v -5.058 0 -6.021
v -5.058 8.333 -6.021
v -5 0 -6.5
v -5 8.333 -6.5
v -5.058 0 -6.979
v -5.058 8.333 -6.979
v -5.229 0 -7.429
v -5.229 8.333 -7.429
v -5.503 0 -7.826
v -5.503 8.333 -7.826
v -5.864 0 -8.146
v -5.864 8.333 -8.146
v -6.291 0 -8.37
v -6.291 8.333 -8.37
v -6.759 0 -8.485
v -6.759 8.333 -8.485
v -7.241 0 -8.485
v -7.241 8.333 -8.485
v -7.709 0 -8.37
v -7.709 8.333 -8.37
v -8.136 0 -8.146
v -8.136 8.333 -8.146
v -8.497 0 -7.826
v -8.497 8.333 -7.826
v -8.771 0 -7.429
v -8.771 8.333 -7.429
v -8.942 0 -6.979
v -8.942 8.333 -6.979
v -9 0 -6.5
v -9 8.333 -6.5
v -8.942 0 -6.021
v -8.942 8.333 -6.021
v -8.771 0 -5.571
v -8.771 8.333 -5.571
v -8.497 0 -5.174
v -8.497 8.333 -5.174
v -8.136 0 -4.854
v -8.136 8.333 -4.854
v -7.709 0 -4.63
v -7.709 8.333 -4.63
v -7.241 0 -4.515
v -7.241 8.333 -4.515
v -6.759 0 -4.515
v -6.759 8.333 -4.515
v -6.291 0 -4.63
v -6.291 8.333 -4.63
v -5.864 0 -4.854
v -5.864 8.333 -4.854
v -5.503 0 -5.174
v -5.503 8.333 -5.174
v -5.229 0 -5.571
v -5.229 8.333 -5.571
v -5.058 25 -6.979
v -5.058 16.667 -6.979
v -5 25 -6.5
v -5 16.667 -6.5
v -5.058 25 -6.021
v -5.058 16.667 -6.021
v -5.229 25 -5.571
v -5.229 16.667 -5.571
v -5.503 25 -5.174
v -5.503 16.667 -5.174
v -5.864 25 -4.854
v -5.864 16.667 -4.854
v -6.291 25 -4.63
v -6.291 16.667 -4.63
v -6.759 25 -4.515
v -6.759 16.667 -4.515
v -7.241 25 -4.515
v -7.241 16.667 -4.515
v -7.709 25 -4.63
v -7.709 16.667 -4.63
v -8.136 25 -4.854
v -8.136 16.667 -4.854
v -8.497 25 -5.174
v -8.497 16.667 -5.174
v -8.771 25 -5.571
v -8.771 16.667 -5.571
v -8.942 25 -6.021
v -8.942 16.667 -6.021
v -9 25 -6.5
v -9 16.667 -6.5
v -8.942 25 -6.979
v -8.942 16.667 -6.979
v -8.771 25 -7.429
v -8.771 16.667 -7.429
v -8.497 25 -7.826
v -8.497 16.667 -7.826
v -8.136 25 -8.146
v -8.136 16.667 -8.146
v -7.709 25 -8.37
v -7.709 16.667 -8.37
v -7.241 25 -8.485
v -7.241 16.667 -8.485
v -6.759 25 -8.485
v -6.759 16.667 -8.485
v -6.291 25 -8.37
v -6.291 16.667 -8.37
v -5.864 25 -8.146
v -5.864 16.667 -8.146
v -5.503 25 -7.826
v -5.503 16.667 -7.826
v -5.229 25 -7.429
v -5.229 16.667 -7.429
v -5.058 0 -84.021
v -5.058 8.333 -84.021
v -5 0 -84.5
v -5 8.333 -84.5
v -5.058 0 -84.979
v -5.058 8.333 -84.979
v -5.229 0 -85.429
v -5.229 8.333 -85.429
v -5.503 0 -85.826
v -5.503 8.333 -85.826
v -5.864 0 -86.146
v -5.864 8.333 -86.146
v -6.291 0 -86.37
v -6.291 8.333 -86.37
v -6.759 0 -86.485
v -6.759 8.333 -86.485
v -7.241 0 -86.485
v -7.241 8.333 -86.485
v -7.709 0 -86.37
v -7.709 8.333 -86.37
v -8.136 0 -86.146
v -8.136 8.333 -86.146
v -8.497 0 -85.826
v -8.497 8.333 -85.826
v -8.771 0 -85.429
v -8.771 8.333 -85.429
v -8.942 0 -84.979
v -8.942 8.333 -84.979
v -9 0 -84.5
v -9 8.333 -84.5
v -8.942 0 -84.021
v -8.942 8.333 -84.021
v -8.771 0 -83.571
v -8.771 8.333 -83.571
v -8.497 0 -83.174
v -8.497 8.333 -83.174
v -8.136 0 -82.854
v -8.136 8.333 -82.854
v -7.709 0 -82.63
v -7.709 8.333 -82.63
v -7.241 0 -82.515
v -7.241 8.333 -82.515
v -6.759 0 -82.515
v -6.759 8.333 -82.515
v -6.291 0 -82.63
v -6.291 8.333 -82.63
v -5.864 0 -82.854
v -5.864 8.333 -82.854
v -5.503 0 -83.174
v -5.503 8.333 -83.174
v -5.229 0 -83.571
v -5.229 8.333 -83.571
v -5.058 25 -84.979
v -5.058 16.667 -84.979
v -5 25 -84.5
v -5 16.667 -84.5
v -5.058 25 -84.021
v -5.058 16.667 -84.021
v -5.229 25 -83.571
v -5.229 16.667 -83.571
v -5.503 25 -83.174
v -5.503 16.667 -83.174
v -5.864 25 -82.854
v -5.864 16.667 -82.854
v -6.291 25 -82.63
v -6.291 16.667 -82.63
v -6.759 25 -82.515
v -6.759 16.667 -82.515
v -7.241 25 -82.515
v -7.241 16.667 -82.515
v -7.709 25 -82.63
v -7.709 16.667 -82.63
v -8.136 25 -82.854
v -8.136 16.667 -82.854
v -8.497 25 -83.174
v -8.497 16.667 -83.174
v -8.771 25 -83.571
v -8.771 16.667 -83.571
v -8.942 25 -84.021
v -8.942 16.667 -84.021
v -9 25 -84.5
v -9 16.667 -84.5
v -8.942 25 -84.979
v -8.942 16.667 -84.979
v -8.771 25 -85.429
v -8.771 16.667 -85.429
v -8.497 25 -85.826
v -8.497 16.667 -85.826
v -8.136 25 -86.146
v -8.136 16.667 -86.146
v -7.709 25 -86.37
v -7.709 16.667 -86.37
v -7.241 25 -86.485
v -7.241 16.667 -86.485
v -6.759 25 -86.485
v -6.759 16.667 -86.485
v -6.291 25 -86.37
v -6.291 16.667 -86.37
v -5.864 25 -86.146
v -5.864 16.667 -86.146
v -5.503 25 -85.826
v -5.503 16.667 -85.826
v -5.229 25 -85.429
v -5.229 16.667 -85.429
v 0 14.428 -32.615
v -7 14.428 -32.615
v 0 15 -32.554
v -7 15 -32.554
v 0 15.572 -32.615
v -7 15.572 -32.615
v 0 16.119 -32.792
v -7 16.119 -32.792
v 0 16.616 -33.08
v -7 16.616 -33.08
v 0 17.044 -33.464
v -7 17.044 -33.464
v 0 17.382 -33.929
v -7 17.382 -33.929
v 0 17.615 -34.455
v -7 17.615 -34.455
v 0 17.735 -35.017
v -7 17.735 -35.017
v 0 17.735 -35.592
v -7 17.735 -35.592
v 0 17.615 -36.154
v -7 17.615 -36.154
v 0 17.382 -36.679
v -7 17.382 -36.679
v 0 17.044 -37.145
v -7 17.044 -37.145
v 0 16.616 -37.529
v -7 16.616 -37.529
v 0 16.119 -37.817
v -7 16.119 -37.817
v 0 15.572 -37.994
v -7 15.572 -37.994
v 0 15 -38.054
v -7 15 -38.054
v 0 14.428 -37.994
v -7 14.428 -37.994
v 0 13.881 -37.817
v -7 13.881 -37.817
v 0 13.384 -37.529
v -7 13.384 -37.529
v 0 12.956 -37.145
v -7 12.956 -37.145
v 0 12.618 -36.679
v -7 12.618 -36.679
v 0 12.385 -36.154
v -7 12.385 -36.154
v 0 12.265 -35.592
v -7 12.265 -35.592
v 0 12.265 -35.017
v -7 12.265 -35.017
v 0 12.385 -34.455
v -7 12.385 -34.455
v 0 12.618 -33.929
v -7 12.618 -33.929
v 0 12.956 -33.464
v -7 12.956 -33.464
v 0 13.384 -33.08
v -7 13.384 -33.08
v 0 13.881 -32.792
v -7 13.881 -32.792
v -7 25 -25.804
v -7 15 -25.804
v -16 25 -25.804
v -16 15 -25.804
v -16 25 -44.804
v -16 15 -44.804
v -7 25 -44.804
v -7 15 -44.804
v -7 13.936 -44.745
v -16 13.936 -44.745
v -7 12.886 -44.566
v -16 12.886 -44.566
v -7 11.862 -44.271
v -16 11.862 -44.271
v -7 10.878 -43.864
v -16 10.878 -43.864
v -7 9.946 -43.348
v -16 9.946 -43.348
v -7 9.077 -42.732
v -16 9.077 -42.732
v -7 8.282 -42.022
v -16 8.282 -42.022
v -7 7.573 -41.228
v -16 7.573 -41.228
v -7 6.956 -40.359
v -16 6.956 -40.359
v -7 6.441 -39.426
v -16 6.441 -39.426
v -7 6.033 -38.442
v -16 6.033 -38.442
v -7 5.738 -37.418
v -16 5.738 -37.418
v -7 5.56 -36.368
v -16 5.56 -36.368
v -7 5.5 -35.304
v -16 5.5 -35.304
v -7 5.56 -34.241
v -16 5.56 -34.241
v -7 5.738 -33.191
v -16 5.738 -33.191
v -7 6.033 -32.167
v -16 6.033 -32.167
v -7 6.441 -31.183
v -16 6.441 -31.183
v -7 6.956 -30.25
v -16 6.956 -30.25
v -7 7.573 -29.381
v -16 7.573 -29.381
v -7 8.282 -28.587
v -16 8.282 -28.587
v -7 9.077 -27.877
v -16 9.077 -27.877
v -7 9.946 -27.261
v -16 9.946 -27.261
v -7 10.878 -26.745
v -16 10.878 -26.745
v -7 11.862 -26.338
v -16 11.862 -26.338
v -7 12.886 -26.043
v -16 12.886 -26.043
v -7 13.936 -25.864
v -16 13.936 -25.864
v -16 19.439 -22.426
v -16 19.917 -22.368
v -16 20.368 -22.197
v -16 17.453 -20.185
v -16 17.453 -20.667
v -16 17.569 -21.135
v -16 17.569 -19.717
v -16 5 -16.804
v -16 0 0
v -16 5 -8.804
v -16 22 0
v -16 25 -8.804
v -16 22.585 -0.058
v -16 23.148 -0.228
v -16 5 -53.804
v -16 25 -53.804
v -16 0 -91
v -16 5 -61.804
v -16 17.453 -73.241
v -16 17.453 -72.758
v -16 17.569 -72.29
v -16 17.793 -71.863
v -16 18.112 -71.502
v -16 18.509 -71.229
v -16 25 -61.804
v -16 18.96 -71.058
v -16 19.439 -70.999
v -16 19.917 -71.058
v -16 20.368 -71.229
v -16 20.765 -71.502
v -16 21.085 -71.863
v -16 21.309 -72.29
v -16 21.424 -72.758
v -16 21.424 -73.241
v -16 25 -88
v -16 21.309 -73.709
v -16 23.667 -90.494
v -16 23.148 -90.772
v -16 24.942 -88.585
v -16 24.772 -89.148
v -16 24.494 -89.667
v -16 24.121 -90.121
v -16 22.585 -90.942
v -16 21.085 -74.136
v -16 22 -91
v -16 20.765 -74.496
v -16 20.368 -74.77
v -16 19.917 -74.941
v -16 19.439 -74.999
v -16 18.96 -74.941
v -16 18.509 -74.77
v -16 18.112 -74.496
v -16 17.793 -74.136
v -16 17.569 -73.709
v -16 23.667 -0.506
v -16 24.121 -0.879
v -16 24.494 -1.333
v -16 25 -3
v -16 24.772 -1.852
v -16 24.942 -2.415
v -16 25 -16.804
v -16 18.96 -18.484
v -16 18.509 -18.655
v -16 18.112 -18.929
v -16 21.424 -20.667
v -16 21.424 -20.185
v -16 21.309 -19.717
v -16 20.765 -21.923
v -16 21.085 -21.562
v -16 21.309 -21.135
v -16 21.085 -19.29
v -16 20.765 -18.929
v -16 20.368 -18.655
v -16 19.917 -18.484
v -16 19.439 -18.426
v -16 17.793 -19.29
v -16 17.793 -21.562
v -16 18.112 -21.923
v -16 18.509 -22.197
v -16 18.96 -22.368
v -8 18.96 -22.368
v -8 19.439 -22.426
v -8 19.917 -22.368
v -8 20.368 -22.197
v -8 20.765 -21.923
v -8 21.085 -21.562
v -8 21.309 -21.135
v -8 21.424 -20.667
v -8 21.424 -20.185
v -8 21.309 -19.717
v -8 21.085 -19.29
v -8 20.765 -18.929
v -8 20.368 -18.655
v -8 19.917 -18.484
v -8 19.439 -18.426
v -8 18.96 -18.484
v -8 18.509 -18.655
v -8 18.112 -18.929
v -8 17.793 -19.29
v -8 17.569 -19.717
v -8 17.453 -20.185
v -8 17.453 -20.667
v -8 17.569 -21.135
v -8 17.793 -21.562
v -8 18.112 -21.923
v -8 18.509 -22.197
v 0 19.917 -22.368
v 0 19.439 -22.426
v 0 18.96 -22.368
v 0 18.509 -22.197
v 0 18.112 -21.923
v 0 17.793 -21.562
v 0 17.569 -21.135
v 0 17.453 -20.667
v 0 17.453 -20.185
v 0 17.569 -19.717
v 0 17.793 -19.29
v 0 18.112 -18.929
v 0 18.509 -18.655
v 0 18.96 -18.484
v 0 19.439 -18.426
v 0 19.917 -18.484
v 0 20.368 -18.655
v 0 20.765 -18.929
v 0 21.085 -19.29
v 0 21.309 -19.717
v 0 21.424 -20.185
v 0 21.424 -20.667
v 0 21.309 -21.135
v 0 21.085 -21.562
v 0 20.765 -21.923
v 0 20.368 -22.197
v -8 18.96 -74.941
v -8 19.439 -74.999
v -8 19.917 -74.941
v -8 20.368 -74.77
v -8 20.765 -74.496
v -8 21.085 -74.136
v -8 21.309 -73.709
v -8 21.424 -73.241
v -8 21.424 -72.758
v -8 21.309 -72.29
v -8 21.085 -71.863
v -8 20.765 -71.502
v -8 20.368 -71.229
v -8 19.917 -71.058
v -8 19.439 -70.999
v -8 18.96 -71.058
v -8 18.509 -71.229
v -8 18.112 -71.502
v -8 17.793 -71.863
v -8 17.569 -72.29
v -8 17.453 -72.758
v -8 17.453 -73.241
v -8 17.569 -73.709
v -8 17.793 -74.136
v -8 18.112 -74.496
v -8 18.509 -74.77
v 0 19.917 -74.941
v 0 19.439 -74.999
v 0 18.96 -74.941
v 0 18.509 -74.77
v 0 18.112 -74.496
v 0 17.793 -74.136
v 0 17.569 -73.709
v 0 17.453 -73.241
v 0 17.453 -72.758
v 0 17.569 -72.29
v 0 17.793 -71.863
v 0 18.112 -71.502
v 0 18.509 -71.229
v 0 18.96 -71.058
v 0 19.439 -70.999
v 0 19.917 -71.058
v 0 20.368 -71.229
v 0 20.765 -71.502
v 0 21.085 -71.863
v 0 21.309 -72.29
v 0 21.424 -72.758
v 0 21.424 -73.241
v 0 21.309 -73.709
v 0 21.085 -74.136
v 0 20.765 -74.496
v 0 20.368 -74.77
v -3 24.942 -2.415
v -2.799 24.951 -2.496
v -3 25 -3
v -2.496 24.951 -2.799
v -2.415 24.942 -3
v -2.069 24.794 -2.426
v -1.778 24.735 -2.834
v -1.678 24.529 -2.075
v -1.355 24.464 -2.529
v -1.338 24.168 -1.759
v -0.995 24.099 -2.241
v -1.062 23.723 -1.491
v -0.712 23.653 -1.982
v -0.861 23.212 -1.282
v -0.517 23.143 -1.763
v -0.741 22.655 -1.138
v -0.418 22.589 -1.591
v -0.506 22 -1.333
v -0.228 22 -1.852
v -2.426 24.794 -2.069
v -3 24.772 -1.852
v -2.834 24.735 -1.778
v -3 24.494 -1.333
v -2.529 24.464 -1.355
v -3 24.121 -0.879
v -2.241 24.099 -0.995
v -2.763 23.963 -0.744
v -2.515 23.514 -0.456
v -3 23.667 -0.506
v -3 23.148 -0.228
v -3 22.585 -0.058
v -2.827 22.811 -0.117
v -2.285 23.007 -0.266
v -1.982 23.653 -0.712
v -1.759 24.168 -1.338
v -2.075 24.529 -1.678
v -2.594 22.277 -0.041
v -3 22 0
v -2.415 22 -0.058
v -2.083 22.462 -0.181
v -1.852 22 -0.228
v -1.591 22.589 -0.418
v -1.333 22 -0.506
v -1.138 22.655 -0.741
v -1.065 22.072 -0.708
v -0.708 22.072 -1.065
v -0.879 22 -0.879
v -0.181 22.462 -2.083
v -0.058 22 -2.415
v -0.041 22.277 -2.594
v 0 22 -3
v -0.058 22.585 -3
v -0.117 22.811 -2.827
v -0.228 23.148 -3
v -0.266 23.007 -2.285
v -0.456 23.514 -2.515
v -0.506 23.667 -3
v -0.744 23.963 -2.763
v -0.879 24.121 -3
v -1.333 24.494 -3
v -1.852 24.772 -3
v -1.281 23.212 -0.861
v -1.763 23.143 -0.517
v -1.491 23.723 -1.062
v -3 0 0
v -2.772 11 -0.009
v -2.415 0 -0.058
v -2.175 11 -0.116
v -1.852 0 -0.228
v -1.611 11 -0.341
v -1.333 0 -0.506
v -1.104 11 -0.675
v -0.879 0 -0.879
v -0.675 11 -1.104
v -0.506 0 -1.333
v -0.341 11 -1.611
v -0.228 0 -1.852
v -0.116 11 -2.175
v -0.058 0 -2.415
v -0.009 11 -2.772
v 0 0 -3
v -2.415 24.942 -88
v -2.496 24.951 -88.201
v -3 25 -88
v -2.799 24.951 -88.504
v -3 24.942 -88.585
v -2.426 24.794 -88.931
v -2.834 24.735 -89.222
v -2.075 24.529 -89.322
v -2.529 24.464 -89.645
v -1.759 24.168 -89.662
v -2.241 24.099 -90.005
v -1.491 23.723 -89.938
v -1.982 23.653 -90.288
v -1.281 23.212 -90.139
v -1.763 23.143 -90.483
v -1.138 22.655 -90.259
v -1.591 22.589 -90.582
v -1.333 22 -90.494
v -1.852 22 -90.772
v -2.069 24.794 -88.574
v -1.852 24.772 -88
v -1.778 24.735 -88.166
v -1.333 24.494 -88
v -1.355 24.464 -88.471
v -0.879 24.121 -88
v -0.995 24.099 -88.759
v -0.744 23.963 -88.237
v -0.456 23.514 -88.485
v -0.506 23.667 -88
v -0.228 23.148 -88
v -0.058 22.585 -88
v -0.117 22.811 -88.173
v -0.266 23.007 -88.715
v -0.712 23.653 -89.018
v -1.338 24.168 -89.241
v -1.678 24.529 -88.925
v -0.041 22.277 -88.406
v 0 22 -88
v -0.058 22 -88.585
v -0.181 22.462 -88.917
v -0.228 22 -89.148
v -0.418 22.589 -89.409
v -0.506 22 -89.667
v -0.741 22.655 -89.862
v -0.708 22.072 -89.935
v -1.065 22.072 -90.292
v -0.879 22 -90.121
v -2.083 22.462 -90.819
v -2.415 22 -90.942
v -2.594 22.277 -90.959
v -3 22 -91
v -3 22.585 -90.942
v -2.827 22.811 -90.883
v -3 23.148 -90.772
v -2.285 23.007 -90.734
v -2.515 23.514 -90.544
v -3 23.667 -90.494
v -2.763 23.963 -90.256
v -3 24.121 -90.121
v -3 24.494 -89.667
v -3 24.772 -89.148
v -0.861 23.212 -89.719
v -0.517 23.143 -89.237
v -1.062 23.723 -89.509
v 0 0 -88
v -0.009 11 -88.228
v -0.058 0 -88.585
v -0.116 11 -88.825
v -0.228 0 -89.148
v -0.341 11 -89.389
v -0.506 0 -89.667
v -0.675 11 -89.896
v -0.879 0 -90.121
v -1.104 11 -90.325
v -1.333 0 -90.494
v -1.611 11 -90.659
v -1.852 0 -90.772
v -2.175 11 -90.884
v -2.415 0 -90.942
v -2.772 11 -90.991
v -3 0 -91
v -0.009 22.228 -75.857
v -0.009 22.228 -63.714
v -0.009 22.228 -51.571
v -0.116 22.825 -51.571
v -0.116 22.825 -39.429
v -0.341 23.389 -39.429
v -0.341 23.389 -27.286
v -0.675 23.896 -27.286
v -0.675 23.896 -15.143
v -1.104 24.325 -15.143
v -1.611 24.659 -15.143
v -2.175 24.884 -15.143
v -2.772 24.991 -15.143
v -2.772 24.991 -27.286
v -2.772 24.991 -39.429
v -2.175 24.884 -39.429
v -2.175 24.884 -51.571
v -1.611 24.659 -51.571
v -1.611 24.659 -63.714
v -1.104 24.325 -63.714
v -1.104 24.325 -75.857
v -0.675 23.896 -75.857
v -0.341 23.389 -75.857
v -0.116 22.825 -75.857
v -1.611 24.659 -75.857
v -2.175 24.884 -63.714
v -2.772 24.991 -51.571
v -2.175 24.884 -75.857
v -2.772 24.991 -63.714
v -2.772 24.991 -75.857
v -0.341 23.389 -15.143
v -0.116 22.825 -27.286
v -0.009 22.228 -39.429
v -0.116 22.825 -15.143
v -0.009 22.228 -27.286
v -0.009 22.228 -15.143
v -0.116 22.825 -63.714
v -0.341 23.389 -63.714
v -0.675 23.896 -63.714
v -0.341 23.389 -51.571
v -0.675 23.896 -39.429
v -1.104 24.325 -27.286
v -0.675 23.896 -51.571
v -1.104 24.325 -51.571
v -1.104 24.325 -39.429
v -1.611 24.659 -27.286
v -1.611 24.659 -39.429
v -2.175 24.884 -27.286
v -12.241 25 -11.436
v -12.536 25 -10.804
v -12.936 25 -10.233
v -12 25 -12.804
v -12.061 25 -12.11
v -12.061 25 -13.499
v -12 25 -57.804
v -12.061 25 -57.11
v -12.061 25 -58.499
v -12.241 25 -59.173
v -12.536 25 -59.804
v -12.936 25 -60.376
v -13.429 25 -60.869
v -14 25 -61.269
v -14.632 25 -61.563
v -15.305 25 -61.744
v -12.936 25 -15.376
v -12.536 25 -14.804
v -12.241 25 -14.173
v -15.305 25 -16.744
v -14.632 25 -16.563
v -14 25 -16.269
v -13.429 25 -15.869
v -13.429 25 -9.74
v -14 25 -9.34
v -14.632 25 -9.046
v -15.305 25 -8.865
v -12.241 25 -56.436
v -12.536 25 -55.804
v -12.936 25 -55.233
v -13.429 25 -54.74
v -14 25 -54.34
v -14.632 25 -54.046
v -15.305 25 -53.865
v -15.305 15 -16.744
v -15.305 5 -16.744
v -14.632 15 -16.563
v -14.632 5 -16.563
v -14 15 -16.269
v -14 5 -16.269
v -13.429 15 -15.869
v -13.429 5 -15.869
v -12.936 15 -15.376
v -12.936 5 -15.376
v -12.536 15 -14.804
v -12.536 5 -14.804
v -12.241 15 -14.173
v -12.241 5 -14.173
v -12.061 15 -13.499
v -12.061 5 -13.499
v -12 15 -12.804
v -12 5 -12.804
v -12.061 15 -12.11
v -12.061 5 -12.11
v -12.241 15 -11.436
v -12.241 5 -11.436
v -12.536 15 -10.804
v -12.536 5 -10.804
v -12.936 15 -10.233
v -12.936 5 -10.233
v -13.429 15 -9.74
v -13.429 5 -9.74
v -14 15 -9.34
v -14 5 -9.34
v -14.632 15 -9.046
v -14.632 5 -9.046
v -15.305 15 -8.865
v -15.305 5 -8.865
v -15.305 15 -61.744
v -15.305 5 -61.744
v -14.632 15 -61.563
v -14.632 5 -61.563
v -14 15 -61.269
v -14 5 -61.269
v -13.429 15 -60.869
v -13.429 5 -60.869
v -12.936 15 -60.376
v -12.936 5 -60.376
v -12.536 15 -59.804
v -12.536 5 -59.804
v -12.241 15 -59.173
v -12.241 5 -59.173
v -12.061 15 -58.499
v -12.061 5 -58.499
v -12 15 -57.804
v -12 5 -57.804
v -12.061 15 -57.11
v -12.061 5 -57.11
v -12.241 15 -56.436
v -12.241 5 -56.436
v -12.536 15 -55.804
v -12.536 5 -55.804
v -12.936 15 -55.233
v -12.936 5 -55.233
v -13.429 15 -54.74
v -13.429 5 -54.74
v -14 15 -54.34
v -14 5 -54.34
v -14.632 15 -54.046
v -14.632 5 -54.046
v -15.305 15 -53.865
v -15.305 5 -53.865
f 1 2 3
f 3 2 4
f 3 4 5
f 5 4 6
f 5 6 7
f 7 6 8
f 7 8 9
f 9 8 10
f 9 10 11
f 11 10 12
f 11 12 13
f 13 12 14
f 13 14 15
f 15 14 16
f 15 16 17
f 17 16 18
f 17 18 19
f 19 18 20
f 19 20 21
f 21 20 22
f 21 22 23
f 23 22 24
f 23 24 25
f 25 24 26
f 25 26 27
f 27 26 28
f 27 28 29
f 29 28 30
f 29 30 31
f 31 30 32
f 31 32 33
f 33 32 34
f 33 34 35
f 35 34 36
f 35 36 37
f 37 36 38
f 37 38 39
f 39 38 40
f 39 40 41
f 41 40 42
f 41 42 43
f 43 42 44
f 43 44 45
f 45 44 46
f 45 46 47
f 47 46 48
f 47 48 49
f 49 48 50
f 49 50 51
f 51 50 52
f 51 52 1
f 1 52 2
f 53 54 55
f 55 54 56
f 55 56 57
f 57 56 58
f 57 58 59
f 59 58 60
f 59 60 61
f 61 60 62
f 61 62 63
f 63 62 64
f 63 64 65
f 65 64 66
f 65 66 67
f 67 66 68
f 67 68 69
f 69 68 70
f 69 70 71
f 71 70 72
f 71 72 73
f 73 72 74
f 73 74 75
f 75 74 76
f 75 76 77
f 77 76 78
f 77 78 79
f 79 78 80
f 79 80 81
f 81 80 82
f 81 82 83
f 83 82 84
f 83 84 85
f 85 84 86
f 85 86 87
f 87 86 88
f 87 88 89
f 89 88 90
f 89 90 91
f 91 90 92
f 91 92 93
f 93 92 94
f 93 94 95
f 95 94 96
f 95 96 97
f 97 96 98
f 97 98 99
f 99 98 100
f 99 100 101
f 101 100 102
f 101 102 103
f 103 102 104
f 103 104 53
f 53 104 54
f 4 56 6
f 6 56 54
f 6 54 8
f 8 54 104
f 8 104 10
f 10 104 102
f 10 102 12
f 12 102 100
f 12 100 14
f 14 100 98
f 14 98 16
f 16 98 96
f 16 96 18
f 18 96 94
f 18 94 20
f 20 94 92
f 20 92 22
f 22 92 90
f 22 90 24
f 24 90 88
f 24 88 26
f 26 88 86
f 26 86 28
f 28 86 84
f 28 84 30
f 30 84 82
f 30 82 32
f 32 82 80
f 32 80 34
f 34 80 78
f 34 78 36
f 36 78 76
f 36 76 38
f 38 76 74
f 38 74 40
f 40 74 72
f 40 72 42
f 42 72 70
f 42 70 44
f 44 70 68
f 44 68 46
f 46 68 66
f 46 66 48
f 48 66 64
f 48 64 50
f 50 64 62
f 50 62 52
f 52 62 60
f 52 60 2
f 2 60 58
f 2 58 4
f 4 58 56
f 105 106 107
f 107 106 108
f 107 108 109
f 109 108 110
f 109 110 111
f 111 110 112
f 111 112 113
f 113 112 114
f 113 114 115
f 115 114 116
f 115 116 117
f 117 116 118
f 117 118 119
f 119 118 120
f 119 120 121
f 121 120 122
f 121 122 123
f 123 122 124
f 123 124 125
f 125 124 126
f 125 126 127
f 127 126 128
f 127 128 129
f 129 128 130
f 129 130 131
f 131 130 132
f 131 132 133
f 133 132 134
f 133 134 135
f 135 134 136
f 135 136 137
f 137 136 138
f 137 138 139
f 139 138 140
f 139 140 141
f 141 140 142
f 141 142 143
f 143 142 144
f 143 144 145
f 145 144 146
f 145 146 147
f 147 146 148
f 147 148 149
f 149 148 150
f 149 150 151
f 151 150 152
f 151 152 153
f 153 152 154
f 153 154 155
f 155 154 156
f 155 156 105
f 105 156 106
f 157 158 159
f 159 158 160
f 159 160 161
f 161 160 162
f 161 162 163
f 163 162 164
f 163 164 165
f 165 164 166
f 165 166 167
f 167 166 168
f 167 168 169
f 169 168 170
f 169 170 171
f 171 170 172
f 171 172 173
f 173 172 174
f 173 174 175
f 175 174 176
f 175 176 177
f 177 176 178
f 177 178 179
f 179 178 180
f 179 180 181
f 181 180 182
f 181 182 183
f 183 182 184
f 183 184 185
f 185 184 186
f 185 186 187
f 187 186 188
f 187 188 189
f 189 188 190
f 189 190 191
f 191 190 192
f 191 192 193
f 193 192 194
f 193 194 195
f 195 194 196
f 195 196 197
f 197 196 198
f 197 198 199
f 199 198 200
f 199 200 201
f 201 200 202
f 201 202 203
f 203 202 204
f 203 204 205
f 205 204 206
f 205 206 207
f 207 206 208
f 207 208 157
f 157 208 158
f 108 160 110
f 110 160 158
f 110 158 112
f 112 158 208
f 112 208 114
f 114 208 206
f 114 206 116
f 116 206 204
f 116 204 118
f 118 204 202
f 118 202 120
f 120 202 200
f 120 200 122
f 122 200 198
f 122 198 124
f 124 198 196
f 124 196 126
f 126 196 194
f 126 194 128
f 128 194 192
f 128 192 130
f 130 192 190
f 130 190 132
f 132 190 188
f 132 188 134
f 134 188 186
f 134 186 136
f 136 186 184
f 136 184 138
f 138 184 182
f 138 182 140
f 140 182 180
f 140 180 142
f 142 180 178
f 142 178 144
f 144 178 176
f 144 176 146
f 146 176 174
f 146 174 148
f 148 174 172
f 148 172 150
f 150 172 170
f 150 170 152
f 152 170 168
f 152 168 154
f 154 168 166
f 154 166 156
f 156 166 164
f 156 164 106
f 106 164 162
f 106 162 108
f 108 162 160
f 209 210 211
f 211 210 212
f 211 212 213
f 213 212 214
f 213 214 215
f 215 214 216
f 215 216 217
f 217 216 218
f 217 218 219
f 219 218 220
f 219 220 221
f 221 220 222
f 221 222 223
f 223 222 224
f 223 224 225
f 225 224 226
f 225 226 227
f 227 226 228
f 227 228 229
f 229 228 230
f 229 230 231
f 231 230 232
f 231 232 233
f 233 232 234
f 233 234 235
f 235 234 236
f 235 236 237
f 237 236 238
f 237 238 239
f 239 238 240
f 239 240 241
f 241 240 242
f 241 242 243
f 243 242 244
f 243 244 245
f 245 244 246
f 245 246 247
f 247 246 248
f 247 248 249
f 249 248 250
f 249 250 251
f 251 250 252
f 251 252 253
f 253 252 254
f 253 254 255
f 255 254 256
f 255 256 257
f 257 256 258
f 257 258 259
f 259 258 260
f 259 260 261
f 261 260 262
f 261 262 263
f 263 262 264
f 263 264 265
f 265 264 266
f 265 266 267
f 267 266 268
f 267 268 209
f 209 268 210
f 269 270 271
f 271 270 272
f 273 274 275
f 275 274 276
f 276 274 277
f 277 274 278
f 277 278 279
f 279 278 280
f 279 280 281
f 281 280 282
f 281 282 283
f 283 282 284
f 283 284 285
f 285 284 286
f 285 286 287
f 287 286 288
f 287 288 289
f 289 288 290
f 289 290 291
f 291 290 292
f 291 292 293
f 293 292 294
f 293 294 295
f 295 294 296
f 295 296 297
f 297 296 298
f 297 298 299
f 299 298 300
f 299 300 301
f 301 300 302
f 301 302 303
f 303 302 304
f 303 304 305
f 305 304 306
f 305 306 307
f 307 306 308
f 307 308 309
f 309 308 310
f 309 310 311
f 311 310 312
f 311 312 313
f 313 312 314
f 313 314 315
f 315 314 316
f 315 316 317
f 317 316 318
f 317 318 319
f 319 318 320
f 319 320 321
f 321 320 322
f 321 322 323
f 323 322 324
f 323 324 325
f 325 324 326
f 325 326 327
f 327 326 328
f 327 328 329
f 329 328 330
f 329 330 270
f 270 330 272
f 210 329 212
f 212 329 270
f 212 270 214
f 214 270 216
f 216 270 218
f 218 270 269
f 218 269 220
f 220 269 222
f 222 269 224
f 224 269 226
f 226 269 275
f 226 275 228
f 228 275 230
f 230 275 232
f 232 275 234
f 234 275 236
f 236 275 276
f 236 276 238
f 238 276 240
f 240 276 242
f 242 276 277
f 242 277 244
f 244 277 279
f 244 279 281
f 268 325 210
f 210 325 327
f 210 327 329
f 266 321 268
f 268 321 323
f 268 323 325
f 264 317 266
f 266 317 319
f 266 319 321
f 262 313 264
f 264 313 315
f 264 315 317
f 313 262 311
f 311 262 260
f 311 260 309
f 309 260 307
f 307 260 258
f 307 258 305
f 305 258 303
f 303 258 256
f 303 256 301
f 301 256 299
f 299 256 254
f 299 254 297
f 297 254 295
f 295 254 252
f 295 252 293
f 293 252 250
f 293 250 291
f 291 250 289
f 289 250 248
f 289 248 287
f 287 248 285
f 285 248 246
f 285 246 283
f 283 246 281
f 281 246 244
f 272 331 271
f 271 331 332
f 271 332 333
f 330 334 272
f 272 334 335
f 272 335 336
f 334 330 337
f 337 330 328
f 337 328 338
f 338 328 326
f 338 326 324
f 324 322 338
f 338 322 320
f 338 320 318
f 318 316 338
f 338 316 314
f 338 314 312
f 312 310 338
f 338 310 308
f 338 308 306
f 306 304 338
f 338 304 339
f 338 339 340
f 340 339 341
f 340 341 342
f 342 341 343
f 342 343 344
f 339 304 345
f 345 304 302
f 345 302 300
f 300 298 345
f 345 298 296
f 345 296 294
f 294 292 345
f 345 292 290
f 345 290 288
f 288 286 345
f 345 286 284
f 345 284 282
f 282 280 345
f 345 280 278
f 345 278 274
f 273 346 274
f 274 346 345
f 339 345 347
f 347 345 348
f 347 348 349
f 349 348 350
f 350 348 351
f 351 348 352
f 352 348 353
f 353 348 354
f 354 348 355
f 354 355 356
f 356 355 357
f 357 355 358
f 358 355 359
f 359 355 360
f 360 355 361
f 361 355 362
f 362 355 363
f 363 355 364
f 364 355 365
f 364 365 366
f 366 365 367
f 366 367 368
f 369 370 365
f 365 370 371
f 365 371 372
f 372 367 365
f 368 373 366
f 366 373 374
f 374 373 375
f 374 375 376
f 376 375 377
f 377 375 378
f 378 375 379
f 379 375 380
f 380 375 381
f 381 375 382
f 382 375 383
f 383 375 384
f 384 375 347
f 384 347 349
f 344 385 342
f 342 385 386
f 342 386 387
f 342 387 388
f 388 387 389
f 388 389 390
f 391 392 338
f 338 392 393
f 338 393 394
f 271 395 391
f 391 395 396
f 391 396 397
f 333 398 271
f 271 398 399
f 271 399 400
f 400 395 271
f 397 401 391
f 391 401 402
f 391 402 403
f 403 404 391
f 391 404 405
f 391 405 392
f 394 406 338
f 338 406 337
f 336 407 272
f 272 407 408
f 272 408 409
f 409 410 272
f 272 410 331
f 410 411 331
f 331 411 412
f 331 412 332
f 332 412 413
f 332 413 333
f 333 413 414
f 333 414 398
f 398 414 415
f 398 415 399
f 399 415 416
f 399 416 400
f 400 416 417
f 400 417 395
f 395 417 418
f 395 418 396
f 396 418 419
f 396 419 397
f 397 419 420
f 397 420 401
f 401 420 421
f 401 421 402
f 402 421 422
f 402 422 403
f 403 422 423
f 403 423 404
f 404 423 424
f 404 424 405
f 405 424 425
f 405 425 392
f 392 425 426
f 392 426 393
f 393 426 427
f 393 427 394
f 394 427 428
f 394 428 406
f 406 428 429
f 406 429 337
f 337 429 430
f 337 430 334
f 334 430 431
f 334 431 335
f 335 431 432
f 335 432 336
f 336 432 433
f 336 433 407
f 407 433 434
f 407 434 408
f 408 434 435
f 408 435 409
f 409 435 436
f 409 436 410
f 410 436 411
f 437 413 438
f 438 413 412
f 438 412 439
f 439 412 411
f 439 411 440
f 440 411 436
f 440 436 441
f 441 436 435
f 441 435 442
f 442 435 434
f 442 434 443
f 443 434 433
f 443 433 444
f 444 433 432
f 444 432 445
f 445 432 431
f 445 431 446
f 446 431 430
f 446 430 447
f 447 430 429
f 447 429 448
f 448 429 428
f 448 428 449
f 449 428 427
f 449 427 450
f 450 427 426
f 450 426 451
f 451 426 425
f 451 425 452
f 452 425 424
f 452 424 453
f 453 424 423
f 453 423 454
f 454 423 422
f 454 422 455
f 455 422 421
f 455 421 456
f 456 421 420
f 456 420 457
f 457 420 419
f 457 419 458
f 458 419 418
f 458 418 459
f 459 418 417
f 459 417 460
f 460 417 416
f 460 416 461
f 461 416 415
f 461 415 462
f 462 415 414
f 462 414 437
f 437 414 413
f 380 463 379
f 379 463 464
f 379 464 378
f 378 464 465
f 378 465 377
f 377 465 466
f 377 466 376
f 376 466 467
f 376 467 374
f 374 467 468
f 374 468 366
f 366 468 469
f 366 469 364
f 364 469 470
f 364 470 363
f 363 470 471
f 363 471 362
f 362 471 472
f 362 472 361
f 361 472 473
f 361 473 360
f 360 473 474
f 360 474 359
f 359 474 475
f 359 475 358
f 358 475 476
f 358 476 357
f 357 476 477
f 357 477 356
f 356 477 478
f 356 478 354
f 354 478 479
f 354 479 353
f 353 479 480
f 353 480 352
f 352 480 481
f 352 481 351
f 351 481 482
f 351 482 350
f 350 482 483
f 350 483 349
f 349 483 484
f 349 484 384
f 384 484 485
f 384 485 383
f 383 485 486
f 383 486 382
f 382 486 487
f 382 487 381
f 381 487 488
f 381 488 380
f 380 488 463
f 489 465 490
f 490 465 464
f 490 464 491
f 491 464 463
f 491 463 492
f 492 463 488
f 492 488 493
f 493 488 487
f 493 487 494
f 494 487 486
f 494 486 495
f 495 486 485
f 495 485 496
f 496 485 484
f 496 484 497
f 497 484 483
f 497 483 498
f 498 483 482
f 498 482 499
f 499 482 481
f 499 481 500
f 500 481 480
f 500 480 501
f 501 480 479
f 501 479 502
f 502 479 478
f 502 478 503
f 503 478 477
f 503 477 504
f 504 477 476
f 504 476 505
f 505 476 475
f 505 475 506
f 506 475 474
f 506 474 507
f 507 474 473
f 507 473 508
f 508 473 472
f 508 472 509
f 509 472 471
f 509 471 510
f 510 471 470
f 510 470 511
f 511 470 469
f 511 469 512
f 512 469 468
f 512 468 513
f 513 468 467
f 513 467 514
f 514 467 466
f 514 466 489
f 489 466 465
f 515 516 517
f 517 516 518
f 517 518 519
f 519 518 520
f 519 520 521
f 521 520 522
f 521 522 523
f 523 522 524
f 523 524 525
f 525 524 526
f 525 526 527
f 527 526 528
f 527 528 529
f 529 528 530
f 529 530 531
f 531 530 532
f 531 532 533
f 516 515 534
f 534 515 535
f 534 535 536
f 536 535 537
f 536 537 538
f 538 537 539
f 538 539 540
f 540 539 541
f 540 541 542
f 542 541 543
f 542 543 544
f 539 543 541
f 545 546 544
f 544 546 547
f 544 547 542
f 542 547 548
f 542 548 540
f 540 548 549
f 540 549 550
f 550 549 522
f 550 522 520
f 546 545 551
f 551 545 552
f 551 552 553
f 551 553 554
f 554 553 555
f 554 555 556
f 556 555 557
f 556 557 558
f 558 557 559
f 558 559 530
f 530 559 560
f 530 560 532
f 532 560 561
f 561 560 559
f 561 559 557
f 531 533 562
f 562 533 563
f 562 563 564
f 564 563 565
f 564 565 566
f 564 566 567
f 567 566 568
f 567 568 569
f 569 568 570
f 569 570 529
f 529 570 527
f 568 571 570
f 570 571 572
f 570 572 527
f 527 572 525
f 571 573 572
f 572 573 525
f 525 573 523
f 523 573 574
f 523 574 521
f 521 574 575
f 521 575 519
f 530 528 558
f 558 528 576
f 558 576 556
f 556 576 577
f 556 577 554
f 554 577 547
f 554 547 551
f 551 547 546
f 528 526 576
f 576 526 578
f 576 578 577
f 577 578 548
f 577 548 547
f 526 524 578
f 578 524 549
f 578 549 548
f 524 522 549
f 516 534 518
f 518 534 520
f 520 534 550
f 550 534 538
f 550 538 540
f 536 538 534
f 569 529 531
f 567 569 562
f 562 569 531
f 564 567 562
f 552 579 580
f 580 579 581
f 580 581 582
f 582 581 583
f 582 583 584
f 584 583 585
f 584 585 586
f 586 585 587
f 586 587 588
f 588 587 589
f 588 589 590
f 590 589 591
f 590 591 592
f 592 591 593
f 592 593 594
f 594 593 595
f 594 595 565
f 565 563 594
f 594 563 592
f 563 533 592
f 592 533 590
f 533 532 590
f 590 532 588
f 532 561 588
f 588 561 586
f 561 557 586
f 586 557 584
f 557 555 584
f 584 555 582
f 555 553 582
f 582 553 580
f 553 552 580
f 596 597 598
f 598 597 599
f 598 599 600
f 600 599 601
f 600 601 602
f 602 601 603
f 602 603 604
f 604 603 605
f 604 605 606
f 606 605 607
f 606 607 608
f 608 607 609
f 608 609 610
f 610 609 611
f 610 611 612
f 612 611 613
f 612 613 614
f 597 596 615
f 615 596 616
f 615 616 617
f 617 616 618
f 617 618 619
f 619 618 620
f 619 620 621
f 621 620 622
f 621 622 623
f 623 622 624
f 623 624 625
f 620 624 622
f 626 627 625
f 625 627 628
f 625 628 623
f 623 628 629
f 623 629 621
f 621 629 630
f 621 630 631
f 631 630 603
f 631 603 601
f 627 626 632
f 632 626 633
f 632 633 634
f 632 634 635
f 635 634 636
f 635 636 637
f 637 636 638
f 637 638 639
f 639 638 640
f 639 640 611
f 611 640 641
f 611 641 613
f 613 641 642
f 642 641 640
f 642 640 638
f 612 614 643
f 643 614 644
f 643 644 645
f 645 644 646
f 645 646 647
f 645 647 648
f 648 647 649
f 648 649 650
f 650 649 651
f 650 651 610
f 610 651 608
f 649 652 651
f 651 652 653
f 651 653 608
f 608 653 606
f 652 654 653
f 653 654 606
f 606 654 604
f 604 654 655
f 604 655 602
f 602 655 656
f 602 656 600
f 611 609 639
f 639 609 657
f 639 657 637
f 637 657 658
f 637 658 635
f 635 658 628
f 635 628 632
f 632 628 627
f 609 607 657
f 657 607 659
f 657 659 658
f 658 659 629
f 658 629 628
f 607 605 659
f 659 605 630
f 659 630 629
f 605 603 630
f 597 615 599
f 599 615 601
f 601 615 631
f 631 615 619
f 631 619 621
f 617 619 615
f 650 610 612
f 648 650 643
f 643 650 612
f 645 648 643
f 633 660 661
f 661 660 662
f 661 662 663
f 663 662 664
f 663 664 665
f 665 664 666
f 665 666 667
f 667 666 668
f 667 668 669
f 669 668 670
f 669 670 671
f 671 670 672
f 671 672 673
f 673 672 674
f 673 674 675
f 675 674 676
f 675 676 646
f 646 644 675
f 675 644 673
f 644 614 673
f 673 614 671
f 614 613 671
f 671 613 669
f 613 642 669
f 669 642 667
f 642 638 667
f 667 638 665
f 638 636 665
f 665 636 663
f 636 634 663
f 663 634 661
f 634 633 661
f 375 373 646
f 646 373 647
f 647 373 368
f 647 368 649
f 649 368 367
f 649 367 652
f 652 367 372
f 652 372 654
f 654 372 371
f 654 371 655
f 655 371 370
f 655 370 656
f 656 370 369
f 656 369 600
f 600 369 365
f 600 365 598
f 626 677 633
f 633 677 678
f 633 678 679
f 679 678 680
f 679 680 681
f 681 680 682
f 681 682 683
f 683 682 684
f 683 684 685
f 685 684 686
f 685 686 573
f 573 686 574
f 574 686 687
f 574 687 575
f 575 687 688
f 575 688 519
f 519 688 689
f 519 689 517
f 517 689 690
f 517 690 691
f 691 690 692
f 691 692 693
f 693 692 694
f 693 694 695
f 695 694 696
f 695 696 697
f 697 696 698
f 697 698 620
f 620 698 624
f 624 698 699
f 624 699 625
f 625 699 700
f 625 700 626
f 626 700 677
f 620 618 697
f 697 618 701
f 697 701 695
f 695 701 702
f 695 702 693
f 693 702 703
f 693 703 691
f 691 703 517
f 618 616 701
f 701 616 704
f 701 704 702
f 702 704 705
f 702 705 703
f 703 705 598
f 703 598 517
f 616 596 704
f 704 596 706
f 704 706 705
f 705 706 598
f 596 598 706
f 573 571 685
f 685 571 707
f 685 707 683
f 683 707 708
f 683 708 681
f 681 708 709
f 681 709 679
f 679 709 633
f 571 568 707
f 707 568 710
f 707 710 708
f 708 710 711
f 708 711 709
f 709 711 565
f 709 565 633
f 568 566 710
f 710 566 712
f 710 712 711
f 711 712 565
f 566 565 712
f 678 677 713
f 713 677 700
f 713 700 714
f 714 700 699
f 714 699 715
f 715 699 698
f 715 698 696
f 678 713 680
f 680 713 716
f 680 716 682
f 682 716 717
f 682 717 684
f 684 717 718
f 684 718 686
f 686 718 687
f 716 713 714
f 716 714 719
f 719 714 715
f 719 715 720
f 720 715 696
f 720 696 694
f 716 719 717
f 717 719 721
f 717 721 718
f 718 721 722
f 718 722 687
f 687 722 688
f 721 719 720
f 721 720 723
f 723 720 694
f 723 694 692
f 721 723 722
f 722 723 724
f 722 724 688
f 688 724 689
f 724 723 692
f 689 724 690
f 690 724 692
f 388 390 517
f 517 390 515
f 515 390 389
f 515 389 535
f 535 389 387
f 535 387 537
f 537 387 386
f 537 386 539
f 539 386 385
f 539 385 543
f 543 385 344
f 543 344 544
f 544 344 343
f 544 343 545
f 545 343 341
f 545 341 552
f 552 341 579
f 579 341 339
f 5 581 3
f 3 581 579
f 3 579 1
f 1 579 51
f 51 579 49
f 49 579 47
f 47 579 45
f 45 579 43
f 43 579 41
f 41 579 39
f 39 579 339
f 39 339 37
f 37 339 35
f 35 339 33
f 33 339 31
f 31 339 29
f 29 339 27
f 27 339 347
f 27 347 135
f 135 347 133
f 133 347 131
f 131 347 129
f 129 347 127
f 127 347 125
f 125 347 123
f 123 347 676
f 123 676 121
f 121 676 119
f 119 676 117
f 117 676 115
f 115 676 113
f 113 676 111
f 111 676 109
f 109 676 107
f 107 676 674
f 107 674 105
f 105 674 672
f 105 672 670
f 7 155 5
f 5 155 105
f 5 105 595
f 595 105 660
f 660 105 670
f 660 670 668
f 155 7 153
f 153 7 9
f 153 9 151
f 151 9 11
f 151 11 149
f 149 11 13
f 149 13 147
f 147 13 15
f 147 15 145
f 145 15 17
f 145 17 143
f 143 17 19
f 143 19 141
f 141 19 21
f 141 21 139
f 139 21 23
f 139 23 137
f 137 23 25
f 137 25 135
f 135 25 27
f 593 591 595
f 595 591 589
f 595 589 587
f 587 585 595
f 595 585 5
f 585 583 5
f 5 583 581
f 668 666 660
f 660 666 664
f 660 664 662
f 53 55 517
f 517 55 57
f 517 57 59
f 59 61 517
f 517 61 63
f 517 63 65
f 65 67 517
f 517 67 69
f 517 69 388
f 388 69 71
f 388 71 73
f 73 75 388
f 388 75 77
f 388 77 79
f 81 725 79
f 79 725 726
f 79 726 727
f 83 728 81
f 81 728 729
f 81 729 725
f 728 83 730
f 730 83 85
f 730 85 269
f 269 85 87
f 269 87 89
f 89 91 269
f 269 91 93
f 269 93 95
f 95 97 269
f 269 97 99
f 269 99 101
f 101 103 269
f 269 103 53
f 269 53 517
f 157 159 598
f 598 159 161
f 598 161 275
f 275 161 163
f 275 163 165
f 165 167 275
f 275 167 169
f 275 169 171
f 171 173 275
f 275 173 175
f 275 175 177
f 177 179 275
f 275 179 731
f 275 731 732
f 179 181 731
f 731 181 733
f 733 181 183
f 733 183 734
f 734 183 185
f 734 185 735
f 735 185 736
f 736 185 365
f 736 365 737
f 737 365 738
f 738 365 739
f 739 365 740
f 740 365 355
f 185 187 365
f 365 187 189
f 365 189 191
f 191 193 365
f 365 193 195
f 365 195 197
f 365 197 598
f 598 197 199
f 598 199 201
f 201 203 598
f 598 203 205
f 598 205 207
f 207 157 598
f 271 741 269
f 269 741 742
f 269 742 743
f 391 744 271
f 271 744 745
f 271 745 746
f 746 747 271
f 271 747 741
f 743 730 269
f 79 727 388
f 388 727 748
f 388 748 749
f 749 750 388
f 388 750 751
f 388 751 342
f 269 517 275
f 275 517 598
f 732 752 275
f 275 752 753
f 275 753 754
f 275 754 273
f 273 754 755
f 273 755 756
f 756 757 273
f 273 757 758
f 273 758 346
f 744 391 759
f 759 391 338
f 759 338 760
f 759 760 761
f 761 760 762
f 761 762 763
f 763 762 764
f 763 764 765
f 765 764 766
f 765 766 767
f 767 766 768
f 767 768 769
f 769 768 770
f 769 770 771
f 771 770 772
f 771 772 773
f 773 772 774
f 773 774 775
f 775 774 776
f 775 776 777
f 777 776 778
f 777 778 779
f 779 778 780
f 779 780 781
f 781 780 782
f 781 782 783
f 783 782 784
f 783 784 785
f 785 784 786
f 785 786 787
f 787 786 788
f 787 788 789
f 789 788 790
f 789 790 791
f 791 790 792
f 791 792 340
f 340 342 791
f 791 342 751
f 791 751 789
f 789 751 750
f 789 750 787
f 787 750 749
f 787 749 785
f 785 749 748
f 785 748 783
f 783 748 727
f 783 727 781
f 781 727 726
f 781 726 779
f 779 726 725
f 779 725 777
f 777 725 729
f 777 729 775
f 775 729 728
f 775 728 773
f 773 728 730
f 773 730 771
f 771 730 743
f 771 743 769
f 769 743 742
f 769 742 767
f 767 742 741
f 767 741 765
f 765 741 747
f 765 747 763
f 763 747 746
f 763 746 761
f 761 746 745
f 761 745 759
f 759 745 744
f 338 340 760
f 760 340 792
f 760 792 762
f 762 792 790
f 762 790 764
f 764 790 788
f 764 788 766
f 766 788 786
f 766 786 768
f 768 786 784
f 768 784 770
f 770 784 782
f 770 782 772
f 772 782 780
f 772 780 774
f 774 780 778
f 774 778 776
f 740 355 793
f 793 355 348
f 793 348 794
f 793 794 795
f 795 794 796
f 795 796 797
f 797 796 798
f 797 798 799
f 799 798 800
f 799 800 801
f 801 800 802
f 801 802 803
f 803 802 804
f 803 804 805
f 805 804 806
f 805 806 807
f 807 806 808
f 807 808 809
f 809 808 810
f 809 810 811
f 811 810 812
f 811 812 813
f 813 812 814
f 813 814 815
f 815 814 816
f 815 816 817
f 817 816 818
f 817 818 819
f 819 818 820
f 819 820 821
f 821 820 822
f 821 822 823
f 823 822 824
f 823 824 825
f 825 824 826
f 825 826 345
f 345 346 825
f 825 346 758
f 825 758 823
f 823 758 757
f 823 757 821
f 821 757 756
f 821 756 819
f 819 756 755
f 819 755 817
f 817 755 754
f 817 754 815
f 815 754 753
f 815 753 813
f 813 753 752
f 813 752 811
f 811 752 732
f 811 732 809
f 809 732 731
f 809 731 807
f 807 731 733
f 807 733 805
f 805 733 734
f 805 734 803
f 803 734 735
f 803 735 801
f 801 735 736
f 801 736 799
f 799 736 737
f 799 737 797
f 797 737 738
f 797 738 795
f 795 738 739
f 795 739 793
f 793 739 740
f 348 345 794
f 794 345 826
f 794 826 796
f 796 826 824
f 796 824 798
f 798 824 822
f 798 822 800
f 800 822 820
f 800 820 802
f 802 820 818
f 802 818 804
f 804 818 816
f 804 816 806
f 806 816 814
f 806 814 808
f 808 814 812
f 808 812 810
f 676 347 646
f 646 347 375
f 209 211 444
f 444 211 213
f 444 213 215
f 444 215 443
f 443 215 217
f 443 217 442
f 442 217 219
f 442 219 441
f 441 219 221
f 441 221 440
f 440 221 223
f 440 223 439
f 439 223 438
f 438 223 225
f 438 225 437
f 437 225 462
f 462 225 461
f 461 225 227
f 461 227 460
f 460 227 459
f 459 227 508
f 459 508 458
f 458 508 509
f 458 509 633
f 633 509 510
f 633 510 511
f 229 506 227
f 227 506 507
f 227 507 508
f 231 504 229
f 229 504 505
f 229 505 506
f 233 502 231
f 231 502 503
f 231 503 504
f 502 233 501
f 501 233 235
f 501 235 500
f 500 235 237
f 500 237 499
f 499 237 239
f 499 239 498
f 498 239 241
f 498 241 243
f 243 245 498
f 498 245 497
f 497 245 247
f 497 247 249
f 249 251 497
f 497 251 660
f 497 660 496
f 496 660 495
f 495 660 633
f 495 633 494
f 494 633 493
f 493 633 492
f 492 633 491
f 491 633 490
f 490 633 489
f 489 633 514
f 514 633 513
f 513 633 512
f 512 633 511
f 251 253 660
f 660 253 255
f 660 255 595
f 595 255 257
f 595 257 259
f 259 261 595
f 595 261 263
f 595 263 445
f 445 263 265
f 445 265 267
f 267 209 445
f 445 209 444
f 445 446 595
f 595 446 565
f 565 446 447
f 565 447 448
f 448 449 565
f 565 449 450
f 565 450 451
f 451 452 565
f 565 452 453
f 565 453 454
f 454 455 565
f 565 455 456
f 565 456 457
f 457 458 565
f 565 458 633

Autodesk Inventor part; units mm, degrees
ref_plane "YZ Plane" through (0, 0, 0) normal (1, 0, 0) x (0, 1, 0)
ref_plane "XZ Plane" through (0, 0, 0) normal (0, 1, 0) x (-1, 0, 0)
ref_plane "XY Plane" through (0, 0, 0) normal (0, 0, 1) x (1, 0, 0)
sketch "Sketch1" plane through (0, 0, 0) normal (0, 1, 0) x (-1, 0, 0)
  line L0 (0, 0) -> (16, 0)
  line L1 (16, 0) -> (16, -91)
  line L2 (16, -91) -> (0, -91)
  line L3 (0, -91) -> (0, 0)
  dimension "d0" = 16
  dimension "d1" = 91
extrude "Extrusion1" add sketch "Sketch1" along normal blind 25
sketch "Sketch2" plane through (0, 25, 0) normal (0, 1, 0) x (1, 0, 0)
  line L0 (-16, 91) -> (-16, 0) projected
  circle A0 centre (-16, 12.8045) radius 4
  circle A1 centre (-16, 57.8045) radius 4
  point P0 (0, 0)
  dimension "d4" = 8
  dimension "d5" = 8
  dimension "d6" = 45
extrude "Extrusion2" cut sketch "Sketch2" against normal blind 20
fillet "Fillet1" radius 3 5 edges at (0, 12.5, -91) (0, 12.5, 0) (0, 25, -45.5) (-8, 25, -91) (-8, 25, 0)
sketch "Sketch3" plane through (0, 25, 0) normal (0, 1, 0) x (1, 0, 0)
  circle A0 centre (-7, 6.5) radius 2
  circle A1 centre (-7, 84.5) radius 2
  line L0 (-16, 8.8045) -> (-16, 3) projected
  line L1 (-16, 53.8045) -> (-16, 16.8045) projected
  line L2 (-16, 88) -> (-16, 61.8045) projected
  point P0 (0, 0)
  dimension "d10" = 4
  dimension "d12" = 4
  dimension "d15" = 9
  dimension "d17" = 9
  dimension "d18" = 6.5
sketch "Sketch4" plane through (0, 0, -3) normal (1, 0, 0) x (0, 0, -1)
  circle A0 centre (17.4261, 19.4387) radius 2
  circle A1 centre (69.9995, 19.4387) radius 2
  point P0 (-3, 0)
  dimension "d21" = 4
  dimension "d22" = 4
extrude "Extrusion4" cut sketch "Sketch4" against normal blind 30
sketch "Sketch5" plane through (-16, 0, -91) normal (-1, 0, 0) x (0, 0, 1)
  point P0 (91, 0)
sketch "Sketch6" plane through (-16, 0, -91) normal (-1, 0, 0) x (0, 0, 1)
  arc A0 (46.1955, 15) -> (65.1955, 15) centre (55.6955, 15) ccw
  line L0 (37.1955, 25) -> (37.1955, 5) projected
  line L1 (37.1955, 25) -> (74.1955, 25) projected
  line L2 (46.1955, 15) -> (46.1955, 30.0529)
  line L3 (46.1955, 30.0529) -> (65.1955, 30.0529)
  line L4 (65.1955, 30.0529) -> (65.1955, 15)
  point P0 (91, 0)
  dimension "d25" = 19
  dimension "d26" = 18.5
  dimension "d27" = 10
extrude "Extrusion5" cut sketch "Sketch6" against normal blind 9
sketch "Sketch7" plane through (-7, 0, -91) normal (-1, 0, 0) x (0, 0, 1)
  circle A0 centre (55.6955, 15) radius 2.75
  line L0 (37.1955, 25) -> (37.1955, 5) projected
  point P0 (91, 0)
  dimension "d30" = 5.5
  dimension "d31" = 18.5
extrude "Extrusion6" cut sketch "Sketch7" against normal blind 30
extrude "Extrusion7" cut sketch "Sketch3" against normal blind 30
properties part number "motorothersideradrod"
